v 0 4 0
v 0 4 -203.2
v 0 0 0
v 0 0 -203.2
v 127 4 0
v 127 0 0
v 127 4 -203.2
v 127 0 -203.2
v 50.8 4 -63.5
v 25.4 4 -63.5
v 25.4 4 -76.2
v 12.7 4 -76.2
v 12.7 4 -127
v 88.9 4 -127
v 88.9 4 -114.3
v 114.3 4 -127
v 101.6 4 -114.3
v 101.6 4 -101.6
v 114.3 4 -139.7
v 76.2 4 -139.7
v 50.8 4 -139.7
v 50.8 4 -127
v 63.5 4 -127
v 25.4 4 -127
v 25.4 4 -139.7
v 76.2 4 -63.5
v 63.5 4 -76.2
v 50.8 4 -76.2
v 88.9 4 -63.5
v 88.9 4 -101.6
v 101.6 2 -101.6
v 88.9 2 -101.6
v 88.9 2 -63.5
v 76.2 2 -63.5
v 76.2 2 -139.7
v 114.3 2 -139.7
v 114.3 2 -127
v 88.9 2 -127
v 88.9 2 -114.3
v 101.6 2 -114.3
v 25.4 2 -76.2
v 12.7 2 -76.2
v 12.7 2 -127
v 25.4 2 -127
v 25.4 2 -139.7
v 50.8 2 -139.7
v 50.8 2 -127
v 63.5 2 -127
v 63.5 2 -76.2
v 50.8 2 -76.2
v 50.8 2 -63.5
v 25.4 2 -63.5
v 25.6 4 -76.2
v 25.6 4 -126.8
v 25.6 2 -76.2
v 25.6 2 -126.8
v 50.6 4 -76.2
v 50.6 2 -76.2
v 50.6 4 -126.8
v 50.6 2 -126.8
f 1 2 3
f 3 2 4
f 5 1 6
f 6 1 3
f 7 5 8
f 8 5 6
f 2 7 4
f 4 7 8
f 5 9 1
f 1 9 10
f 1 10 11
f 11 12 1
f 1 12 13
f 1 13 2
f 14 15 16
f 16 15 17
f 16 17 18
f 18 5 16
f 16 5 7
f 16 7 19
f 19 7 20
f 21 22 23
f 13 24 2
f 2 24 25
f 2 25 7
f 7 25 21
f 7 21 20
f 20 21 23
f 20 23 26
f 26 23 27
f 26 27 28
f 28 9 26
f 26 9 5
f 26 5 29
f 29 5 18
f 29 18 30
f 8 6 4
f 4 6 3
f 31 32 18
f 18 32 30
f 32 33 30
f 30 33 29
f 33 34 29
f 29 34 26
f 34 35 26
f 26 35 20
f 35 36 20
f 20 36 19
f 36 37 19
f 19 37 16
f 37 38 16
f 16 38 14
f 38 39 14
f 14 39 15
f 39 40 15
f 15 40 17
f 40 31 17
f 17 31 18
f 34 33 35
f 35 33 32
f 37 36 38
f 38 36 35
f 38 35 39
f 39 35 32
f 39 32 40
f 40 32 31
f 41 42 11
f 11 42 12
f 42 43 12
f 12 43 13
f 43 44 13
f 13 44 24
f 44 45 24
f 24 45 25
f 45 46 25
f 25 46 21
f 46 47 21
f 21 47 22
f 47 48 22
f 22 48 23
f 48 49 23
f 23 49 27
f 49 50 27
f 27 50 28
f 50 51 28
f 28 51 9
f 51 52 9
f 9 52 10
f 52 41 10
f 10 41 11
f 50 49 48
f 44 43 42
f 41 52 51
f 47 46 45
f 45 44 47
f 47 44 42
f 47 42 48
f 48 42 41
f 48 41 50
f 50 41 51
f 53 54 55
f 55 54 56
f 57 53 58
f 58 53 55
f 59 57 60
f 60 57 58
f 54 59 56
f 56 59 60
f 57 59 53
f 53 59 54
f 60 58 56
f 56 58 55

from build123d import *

# Parameters (mm, degrees)
SKETCH1_W            = 127
SKETCH1_H            = 203.2
BOSS_EXTRUDE1_DEPTH  = 4
CUT_EXTRUDE4_DEPTH   = 2
CUT_EXTRUDE8_DEPTH   = 2
SKETCH4_W            = 25
SKETCH4_H            = 50.6
BOSS_EXTRUDE10_DEPTH = 2


with BuildPart() as part:
    # Sketch1 → Boss-Extrude1 (new body)
    with BuildSketch(Plane(origin=(0, 0, 0), x_dir=(1, 0, 0), z_dir=(0, 1, 0))):
        with Locations((63.5, 101.6)):
            Rectangle(SKETCH1_W, SKETCH1_H)
    extrude(amount=BOSS_EXTRUDE1_DEPTH)

    # Sketch2 → Cut-Extrude4 (cut)
    with BuildSketch(Plane(origin=(0, 4, 0), x_dir=(1, 0, 0), z_dir=(0, 1, 0))):
        Polygon((88.9, 127), (88.9, 114.3), (101.6, 114.3), (101.6, 101.6), (88.9, 101.6), (88.9, 63.5), (76.2, 63.5), (76.2, 139.7), (88.9, 139.7), (114.3, 139.7), (114.3, 127), align=None)
    extrude(amount=-CUT_EXTRUDE4_DEPTH, mode=Mode.SUBTRACT)

    # Sketch2<5> → Cut-Extrude8 (cut)
    with BuildSketch(Plane(origin=(0, 4, 0), x_dir=(1, 0, 0), z_dir=(0, 1, 0))):
        Polygon((25.4, 127), (12.7, 127), (12.7, 76.2), (25.4, 76.2), (25.4, 63.5), (50.8, 63.5), (50.8, 76.2), (63.5, 76.2), (63.5, 127), (50.8, 127), (50.8, 139.7), (25.4, 139.7), align=None)
    extrude(amount=-CUT_EXTRUDE8_DEPTH, mode=Mode.SUBTRACT)


with BuildPart() as body_2:
    # Sketch4 → Boss-Extrude10 (new body)
    with BuildSketch(Plane(origin=(0, 2, 0), x_dir=(1, 0, 0), z_dir=(0, 1, 0))):
        with Locations((38.1, 101.5)):
            Rectangle(SKETCH4_W, SKETCH4_H)
    extrude(amount=BOSS_EXTRUDE10_DEPTH)


solid = Compound([part.part, body_2.part])
